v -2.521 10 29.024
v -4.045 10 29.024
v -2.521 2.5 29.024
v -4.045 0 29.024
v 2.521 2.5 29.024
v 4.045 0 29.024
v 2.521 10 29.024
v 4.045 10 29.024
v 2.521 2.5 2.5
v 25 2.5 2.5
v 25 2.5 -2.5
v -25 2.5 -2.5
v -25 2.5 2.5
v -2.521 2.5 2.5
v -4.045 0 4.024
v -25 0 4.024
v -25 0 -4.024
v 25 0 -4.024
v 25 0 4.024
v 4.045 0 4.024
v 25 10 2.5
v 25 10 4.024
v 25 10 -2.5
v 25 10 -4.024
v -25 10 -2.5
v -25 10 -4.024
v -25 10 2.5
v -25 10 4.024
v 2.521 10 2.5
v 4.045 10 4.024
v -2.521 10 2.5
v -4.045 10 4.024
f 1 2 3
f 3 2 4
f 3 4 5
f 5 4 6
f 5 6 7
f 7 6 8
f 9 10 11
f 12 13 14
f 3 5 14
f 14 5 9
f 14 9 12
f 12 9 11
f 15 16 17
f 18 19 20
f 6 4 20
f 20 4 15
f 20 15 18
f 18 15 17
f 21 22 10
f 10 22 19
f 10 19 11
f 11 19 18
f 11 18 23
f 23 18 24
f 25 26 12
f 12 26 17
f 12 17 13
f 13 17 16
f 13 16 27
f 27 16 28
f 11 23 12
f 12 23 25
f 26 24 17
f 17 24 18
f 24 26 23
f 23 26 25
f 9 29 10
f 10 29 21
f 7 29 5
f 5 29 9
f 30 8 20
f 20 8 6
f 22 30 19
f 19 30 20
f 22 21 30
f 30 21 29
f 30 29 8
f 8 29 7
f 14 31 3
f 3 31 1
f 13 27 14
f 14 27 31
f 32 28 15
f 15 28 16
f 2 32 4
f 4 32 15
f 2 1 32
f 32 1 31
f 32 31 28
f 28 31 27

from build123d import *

# Parameters (mm, degrees)
BOSS_EXTRUDE1_DEPTH = 2.5
BOSS_EXTRUDE2_DEPTH = 2.5
SKETCH1_6_W         = 50
SKETCH1_6_H         = 1.524
BOSS_EXTRUDE3_DEPTH = 10


with BuildPart() as part:
    # Sketch1 → Boss-Extrude1 (new body)
    with BuildSketch(Plane(origin=(0, 0, 0), x_dir=(1, 0, 0), z_dir=(0, 1, 0))):
        Polygon((2.521, -2.499999953), (-2.521, -2.499999953), (-2.521, -4.023999953), (-2.521, -29.023999953), (2.521, -29.023999953), (2.521, -4.023999953), align=None)
    extrude(amount=BOSS_EXTRUDE1_DEPTH)

    # Sketch1<5> → Boss-Extrude2 (add)
    with BuildSketch(Plane(origin=(0, 0, 0), x_dir=(1, 0, 0), z_dir=(0, 1, 0))):
        Polygon((25, 2.499999953), (-25, 2.499999953), (-25, -2.499999953), (-2.521, -2.499999953), (2.521, -2.499999953), (25, -2.499999953), align=None)
    extrude(amount=BOSS_EXTRUDE2_DEPTH)

    # Sketch1<6> → Boss-Extrude3 (add)
    with BuildSketch(Plane(origin=(0, 0, 0), x_dir=(1, 0, 0), z_dir=(0, 1, 0))):
        with Locations((0, 3.261999953)):
            Rectangle(SKETCH1_6_W, SKETCH1_6_H)
        Polygon((-2.521, -2.499999953), (-25, -2.499999953), (-25, -4.023999953), (-4.045, -4.023999953), (-4.045, -29.023999953), (-2.521, -29.023999953), align=None)
        Polygon((25, -4.023999953), (25, -2.499999953), (2.521, -2.499999953), (2.521, -29.023999953), (4.045, -29.023999953), (4.045, -4.023999953), align=None)
    extrude(amount=BOSS_EXTRUDE3_DEPTH)


solid = part.part
